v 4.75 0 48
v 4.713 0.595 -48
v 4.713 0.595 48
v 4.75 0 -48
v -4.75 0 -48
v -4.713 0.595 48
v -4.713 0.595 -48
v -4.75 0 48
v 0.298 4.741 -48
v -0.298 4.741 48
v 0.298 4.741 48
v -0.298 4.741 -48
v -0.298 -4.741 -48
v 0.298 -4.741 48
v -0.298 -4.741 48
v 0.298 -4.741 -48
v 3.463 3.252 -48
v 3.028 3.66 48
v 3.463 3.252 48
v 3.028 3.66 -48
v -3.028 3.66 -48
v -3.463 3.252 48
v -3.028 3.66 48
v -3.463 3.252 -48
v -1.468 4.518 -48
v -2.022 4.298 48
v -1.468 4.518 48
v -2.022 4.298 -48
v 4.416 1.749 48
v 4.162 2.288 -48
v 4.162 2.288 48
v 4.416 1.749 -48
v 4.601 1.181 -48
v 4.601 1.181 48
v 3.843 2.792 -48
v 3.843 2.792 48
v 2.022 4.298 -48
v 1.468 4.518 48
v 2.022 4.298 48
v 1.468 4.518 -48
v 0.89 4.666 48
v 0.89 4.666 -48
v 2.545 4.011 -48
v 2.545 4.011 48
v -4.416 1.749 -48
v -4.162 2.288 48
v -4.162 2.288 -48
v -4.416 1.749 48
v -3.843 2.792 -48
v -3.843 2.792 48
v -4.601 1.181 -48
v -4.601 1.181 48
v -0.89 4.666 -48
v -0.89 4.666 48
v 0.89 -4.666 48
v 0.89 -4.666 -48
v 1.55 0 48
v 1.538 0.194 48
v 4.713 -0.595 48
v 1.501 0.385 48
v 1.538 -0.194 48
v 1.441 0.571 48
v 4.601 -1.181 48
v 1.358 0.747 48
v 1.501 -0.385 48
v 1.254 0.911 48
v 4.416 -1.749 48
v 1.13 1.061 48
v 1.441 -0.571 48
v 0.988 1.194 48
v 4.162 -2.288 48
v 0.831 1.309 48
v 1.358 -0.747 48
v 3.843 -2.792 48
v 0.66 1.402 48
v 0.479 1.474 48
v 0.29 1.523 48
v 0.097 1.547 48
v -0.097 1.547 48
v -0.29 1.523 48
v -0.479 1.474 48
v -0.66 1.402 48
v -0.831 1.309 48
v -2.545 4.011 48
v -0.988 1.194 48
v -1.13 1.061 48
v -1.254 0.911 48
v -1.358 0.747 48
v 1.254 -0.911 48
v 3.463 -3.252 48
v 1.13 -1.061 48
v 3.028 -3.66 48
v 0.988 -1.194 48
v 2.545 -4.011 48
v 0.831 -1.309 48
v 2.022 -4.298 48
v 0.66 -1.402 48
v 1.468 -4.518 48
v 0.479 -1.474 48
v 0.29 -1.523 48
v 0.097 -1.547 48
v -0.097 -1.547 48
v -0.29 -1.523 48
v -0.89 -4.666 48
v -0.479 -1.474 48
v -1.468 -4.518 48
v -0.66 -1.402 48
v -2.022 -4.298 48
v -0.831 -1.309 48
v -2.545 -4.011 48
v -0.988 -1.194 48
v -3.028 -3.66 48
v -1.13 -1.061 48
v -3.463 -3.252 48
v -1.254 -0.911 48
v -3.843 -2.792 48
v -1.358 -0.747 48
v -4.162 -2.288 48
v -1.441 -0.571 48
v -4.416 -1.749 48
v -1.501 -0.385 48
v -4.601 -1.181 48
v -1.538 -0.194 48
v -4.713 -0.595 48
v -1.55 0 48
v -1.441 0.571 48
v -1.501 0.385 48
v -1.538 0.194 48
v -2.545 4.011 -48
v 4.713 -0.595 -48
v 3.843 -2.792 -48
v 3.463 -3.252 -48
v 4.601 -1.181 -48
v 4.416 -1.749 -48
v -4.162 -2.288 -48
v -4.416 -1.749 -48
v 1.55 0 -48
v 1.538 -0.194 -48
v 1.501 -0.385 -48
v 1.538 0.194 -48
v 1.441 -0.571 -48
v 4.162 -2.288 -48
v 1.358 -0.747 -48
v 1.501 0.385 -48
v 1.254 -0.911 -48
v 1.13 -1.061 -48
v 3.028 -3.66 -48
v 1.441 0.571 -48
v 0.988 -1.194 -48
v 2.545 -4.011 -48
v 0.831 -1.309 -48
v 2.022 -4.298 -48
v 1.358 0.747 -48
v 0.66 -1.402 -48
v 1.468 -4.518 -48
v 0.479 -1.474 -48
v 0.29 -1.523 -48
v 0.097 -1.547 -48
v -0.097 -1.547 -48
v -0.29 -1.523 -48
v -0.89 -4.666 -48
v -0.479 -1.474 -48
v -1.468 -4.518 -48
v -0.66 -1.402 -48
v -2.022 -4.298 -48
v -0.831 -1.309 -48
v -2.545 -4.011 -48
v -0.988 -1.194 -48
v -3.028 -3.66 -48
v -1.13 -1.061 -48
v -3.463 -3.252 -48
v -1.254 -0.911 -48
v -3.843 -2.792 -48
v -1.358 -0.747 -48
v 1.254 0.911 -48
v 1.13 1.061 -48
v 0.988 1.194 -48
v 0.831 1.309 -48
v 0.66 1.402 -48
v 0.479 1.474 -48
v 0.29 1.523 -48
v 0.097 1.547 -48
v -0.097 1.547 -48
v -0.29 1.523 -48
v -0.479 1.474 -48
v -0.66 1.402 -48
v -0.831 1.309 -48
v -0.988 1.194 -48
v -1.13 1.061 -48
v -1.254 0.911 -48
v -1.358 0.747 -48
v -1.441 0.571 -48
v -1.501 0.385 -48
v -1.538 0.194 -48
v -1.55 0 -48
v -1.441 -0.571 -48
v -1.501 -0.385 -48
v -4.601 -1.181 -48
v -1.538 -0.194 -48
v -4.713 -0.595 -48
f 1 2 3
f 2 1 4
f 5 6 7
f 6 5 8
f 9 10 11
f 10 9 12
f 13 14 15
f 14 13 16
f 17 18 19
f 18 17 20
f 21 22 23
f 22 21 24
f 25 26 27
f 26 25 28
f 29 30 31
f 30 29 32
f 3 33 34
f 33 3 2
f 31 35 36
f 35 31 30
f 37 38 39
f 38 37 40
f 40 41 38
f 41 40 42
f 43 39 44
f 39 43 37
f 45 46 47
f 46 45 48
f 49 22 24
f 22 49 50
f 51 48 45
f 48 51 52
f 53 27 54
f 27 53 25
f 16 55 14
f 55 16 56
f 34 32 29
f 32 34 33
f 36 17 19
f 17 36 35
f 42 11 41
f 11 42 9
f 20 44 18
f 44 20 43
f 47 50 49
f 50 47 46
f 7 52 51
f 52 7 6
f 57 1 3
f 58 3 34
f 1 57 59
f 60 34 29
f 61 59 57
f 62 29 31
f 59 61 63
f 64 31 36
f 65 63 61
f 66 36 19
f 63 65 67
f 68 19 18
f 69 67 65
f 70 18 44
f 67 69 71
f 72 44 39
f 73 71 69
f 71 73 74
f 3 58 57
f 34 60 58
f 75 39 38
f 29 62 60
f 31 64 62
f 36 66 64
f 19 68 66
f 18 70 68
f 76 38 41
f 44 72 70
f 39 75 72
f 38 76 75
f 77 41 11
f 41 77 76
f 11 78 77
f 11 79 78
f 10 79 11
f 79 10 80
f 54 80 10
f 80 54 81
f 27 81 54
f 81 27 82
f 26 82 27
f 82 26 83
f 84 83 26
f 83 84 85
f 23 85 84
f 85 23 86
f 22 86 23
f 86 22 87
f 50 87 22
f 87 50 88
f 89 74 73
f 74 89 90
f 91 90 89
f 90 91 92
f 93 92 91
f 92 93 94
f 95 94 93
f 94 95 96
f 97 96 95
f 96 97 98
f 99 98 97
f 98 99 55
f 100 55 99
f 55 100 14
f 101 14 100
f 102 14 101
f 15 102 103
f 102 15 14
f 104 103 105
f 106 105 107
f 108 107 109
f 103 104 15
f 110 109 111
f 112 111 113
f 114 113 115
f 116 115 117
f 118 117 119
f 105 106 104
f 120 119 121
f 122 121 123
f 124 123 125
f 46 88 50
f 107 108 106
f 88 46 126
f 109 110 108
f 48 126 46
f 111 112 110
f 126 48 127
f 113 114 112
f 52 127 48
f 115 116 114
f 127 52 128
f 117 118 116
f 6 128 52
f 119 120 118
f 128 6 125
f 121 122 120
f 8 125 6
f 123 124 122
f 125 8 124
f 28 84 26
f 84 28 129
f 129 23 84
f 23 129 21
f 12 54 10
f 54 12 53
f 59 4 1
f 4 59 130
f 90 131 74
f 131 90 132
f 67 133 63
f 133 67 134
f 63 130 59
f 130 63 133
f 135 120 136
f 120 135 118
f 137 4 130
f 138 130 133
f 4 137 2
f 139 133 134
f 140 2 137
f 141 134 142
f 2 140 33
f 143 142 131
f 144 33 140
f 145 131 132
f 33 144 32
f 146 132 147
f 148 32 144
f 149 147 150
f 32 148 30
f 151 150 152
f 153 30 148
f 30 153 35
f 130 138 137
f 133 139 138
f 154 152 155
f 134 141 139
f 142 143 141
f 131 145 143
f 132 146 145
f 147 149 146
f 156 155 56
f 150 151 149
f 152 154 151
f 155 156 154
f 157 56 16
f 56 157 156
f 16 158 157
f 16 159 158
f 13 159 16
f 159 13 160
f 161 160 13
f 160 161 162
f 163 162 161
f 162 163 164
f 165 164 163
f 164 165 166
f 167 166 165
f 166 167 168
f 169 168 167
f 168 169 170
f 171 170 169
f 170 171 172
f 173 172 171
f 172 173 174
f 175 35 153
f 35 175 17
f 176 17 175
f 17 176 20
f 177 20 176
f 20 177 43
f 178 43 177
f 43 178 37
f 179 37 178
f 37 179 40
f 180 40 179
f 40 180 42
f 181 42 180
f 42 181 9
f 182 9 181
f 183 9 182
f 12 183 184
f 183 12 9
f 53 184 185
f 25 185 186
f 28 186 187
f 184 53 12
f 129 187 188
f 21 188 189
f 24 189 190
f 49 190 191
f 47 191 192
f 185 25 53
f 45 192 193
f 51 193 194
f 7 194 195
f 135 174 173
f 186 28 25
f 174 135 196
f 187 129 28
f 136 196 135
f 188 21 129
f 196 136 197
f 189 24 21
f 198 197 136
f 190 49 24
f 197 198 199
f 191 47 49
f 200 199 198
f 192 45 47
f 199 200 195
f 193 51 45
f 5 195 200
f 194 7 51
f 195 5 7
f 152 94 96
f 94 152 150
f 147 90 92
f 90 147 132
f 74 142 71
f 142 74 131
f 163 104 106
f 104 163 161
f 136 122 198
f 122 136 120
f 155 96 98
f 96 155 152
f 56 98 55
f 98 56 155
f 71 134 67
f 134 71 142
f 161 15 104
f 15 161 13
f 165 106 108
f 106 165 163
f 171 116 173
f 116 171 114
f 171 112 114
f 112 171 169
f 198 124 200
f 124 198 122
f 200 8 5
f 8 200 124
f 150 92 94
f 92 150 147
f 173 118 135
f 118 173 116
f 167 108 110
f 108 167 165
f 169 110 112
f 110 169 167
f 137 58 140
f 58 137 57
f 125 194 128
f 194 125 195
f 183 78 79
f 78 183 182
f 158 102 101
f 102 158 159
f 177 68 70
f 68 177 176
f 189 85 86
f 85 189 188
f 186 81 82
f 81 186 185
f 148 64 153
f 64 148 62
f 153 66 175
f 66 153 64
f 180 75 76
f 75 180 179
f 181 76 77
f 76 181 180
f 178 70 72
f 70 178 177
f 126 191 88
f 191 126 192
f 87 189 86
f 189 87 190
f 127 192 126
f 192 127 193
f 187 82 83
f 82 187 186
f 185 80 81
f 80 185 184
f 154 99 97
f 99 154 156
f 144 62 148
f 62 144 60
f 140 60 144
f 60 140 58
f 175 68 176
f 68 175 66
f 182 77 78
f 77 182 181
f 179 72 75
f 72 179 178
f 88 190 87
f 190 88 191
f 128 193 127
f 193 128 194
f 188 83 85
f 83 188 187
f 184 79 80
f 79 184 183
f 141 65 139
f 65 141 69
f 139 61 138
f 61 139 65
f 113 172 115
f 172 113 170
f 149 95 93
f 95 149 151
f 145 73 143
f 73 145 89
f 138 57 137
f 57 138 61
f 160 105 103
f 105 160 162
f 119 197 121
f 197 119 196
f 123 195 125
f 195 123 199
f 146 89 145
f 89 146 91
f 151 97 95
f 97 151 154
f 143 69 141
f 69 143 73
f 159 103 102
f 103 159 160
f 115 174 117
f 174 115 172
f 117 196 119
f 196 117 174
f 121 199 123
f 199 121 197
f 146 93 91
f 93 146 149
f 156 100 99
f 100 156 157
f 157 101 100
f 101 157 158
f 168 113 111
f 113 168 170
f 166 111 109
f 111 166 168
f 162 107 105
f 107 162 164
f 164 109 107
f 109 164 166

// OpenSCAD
$fn = 50;


difference() {
	union() {
		translate(v = [0, 0, -48.0000000000]) {
			cylinder(h = 96, r = 4.7500000000);
		}
	}
	union() {
		translate(v = [0, 0, -100.0000000000]) {
			cylinder(h = 200, r = 1.5500000000);
		}
	}
}
